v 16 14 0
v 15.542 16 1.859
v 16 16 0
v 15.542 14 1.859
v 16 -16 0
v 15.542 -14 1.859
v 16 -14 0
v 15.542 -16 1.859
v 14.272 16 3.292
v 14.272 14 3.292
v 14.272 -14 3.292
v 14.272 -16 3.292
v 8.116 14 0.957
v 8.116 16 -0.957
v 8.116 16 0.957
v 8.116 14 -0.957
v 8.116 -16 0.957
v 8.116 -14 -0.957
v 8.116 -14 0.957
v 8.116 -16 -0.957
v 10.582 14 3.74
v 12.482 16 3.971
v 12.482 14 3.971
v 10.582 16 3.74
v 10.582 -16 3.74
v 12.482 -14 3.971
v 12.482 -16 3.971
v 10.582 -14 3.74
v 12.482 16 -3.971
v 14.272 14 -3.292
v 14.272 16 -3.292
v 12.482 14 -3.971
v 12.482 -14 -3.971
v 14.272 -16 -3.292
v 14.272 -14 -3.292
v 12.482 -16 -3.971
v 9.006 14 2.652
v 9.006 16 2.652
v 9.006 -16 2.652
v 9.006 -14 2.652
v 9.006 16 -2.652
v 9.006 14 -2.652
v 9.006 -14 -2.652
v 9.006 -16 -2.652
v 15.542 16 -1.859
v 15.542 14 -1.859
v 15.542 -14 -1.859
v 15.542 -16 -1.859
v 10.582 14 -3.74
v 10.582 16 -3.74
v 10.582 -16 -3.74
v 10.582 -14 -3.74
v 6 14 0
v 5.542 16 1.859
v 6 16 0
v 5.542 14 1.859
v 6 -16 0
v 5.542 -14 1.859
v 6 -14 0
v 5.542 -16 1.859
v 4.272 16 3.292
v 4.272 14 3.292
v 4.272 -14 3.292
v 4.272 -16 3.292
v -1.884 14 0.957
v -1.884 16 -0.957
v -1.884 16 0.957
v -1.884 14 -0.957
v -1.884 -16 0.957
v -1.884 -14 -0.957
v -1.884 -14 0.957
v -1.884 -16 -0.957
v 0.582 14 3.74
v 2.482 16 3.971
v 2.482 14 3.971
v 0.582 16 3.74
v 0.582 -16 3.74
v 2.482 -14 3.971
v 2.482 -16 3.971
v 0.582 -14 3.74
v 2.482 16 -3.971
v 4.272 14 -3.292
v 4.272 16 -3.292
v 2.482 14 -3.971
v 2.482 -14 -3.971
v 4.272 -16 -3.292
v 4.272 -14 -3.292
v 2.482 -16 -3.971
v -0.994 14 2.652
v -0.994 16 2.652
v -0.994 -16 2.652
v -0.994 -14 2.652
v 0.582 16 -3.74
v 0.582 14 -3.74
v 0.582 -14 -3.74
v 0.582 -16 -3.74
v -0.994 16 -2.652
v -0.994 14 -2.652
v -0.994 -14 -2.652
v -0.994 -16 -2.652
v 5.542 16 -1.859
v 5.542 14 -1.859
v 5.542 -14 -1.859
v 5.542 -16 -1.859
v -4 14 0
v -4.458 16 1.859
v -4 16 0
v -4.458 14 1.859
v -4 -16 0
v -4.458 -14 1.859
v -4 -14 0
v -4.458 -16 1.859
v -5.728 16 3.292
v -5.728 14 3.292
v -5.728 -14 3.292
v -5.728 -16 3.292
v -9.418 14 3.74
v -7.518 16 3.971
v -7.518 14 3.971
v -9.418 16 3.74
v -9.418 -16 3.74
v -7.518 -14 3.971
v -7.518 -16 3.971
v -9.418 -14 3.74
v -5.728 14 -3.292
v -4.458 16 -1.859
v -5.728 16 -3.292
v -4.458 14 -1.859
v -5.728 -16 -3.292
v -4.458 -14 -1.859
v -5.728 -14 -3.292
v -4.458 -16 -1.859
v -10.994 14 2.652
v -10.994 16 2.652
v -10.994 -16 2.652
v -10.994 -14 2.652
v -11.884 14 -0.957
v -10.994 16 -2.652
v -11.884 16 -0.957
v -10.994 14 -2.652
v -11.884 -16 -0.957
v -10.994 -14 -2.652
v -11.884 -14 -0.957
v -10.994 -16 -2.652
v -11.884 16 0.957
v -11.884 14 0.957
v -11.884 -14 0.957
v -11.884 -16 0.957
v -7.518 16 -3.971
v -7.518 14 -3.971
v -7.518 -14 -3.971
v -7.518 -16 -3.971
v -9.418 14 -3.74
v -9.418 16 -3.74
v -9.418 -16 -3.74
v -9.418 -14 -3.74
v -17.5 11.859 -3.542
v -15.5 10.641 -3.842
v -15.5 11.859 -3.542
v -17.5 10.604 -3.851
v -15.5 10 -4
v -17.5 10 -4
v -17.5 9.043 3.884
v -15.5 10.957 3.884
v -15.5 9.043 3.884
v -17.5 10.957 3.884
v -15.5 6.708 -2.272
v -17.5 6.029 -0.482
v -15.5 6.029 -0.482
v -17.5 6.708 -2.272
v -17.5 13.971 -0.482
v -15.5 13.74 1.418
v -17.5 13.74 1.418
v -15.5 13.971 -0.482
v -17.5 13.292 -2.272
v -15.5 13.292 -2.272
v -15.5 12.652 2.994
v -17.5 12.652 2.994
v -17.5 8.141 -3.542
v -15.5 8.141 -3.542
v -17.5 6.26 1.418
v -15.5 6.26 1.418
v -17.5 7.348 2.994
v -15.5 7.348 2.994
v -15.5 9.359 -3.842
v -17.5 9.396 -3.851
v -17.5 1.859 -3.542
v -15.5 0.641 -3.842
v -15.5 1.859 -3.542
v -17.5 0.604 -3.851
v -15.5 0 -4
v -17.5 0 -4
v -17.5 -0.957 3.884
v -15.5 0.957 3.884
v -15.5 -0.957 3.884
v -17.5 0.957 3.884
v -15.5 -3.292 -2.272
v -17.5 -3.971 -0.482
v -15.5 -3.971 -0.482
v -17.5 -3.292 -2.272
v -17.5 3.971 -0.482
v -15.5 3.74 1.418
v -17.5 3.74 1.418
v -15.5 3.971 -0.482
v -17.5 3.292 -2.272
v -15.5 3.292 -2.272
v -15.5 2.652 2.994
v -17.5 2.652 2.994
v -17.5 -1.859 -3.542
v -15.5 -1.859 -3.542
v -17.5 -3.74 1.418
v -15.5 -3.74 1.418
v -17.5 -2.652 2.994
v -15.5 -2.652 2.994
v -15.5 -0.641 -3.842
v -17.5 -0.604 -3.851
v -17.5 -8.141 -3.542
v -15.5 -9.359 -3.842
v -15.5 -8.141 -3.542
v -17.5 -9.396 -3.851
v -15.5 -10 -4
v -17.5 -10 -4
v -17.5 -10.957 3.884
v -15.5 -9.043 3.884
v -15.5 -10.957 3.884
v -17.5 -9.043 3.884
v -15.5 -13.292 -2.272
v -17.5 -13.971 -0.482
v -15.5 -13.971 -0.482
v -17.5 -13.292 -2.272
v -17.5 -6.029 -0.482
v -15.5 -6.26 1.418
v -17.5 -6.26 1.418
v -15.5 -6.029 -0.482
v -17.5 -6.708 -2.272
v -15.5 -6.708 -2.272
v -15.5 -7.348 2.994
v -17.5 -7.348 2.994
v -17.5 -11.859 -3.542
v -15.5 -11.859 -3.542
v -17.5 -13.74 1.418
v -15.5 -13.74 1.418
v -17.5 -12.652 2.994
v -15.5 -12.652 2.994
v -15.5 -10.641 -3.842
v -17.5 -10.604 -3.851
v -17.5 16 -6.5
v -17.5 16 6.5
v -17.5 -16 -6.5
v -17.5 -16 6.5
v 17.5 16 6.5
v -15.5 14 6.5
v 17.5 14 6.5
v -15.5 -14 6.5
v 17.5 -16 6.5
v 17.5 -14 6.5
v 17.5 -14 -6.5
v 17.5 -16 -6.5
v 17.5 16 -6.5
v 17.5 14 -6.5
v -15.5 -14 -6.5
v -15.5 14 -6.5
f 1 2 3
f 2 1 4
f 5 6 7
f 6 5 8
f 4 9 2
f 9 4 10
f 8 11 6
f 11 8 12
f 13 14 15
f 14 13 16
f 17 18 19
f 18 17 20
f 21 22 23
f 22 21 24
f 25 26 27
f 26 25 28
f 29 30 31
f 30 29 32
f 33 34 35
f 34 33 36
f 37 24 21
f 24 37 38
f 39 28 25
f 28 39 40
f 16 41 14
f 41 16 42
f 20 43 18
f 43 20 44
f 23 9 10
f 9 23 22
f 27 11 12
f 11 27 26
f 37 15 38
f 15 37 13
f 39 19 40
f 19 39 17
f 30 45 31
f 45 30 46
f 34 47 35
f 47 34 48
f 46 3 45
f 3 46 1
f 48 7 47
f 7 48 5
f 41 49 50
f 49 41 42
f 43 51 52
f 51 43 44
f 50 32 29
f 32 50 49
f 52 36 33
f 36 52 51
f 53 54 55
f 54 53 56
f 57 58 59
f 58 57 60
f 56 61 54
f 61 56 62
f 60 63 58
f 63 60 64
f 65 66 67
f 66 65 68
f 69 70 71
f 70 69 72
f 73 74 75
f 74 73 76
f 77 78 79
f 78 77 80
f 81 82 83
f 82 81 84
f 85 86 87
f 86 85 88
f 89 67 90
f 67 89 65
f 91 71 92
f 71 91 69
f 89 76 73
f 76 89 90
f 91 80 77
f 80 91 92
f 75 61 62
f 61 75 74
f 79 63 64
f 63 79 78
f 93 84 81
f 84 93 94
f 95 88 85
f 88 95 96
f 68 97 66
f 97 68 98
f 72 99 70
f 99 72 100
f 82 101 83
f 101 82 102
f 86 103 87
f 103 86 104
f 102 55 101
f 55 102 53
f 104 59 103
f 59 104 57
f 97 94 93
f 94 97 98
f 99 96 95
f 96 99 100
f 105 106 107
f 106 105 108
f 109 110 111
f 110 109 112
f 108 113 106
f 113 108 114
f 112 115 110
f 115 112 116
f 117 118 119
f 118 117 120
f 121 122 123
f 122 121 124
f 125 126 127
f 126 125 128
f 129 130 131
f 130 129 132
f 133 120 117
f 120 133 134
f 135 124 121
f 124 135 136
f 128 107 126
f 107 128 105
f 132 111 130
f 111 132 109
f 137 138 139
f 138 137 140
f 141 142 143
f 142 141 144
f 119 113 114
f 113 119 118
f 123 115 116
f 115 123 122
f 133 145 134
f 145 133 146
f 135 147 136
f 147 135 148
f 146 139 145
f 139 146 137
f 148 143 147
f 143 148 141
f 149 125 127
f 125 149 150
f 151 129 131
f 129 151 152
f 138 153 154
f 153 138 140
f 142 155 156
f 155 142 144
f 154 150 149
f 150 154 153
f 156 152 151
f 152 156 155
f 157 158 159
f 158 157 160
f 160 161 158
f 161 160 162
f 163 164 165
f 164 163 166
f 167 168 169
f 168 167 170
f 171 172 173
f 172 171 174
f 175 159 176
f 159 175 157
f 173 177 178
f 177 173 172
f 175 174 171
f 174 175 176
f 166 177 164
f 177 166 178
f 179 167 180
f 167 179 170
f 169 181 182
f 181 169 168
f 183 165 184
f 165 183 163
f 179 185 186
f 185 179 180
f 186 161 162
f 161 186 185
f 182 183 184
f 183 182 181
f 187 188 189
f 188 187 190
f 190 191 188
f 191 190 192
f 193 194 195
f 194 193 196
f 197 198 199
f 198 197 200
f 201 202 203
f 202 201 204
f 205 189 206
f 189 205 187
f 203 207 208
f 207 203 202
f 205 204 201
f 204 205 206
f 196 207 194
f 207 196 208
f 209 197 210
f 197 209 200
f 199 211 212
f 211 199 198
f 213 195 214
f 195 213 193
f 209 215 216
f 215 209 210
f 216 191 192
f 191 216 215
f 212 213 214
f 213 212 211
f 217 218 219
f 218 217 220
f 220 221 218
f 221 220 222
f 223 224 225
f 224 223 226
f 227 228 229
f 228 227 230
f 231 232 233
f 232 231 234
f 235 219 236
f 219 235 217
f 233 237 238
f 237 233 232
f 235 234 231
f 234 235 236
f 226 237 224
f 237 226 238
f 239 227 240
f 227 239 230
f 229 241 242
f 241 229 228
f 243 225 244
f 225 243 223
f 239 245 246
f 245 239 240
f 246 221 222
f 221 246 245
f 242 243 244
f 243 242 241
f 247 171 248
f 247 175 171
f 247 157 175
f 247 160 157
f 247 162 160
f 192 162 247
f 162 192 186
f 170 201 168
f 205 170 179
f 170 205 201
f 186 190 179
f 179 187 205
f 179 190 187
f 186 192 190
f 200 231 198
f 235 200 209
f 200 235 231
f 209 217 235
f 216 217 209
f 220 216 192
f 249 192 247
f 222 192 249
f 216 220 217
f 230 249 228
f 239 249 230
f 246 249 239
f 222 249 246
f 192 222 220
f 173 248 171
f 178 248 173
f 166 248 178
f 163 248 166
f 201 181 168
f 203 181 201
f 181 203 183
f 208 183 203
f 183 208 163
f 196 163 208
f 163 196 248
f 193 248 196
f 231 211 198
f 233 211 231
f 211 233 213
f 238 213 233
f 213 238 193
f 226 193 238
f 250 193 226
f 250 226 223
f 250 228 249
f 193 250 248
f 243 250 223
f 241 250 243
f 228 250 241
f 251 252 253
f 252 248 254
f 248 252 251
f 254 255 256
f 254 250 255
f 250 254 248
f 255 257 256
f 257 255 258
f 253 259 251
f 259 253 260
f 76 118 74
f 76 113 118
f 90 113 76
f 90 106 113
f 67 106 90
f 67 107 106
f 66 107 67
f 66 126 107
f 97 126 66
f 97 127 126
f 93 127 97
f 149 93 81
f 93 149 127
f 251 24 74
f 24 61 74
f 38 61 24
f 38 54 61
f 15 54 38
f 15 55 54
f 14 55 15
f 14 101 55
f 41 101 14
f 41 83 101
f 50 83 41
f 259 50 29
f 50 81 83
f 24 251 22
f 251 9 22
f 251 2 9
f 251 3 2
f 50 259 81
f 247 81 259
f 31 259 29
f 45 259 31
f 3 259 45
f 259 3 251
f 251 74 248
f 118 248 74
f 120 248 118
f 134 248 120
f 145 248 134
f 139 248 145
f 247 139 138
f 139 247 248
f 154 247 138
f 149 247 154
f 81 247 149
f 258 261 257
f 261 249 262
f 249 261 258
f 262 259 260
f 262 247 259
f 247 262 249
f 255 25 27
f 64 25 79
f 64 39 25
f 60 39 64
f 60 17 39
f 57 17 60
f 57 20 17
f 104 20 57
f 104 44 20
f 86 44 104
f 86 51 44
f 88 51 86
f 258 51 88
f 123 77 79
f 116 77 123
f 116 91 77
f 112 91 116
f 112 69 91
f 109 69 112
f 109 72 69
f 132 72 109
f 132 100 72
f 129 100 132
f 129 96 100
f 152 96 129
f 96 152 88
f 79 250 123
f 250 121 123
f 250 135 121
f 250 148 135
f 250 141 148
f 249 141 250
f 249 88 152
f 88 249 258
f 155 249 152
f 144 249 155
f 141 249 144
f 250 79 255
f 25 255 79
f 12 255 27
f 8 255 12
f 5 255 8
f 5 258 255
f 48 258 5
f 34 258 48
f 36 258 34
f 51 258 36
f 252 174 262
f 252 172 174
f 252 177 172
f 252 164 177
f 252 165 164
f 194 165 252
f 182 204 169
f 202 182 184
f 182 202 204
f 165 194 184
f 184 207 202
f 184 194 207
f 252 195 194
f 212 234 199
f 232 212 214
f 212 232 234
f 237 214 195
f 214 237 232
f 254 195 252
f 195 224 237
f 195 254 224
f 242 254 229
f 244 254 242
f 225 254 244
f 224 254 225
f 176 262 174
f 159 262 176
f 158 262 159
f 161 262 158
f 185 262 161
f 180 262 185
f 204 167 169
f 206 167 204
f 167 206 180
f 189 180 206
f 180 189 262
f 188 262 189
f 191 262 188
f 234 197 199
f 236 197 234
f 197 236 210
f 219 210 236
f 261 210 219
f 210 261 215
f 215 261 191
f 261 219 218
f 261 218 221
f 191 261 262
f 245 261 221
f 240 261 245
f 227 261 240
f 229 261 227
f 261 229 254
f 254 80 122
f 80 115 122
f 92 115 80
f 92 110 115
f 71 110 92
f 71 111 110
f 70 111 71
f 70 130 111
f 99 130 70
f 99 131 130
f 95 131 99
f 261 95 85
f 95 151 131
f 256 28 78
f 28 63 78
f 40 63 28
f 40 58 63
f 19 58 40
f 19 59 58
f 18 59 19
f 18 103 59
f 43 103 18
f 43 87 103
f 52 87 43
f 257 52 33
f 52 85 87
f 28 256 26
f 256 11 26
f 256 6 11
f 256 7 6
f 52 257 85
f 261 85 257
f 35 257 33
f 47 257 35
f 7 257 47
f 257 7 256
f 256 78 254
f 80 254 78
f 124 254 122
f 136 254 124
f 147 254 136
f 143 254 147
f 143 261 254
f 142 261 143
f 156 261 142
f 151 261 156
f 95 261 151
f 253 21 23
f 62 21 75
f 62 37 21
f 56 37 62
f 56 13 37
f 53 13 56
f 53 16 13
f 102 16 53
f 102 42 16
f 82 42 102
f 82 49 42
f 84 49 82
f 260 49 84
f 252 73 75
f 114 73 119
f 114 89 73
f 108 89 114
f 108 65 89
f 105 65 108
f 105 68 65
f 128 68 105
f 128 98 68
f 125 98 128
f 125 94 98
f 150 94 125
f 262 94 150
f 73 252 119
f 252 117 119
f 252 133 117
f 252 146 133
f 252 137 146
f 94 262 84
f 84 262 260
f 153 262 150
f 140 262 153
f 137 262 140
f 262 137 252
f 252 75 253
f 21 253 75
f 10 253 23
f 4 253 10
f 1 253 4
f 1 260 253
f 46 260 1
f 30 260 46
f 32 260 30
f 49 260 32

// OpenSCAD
module U(){
    difference(){
        cube([35,32,13],center=true);
        translate([2,0,0])
        cube([35,28,14],center=true);
        for(a=[0:10:20]){
            translate([12-a,0,0])
            rotate([90,0,0])
            cylinder(r=4,h=100,center=true);
        }
        for(a=[0:10:20]){
            translate([0,10-a,0])
            rotate([0,90,0])
            cylinder(r=4,h=100,center=true);    
        }
        
    }    
}
U();
